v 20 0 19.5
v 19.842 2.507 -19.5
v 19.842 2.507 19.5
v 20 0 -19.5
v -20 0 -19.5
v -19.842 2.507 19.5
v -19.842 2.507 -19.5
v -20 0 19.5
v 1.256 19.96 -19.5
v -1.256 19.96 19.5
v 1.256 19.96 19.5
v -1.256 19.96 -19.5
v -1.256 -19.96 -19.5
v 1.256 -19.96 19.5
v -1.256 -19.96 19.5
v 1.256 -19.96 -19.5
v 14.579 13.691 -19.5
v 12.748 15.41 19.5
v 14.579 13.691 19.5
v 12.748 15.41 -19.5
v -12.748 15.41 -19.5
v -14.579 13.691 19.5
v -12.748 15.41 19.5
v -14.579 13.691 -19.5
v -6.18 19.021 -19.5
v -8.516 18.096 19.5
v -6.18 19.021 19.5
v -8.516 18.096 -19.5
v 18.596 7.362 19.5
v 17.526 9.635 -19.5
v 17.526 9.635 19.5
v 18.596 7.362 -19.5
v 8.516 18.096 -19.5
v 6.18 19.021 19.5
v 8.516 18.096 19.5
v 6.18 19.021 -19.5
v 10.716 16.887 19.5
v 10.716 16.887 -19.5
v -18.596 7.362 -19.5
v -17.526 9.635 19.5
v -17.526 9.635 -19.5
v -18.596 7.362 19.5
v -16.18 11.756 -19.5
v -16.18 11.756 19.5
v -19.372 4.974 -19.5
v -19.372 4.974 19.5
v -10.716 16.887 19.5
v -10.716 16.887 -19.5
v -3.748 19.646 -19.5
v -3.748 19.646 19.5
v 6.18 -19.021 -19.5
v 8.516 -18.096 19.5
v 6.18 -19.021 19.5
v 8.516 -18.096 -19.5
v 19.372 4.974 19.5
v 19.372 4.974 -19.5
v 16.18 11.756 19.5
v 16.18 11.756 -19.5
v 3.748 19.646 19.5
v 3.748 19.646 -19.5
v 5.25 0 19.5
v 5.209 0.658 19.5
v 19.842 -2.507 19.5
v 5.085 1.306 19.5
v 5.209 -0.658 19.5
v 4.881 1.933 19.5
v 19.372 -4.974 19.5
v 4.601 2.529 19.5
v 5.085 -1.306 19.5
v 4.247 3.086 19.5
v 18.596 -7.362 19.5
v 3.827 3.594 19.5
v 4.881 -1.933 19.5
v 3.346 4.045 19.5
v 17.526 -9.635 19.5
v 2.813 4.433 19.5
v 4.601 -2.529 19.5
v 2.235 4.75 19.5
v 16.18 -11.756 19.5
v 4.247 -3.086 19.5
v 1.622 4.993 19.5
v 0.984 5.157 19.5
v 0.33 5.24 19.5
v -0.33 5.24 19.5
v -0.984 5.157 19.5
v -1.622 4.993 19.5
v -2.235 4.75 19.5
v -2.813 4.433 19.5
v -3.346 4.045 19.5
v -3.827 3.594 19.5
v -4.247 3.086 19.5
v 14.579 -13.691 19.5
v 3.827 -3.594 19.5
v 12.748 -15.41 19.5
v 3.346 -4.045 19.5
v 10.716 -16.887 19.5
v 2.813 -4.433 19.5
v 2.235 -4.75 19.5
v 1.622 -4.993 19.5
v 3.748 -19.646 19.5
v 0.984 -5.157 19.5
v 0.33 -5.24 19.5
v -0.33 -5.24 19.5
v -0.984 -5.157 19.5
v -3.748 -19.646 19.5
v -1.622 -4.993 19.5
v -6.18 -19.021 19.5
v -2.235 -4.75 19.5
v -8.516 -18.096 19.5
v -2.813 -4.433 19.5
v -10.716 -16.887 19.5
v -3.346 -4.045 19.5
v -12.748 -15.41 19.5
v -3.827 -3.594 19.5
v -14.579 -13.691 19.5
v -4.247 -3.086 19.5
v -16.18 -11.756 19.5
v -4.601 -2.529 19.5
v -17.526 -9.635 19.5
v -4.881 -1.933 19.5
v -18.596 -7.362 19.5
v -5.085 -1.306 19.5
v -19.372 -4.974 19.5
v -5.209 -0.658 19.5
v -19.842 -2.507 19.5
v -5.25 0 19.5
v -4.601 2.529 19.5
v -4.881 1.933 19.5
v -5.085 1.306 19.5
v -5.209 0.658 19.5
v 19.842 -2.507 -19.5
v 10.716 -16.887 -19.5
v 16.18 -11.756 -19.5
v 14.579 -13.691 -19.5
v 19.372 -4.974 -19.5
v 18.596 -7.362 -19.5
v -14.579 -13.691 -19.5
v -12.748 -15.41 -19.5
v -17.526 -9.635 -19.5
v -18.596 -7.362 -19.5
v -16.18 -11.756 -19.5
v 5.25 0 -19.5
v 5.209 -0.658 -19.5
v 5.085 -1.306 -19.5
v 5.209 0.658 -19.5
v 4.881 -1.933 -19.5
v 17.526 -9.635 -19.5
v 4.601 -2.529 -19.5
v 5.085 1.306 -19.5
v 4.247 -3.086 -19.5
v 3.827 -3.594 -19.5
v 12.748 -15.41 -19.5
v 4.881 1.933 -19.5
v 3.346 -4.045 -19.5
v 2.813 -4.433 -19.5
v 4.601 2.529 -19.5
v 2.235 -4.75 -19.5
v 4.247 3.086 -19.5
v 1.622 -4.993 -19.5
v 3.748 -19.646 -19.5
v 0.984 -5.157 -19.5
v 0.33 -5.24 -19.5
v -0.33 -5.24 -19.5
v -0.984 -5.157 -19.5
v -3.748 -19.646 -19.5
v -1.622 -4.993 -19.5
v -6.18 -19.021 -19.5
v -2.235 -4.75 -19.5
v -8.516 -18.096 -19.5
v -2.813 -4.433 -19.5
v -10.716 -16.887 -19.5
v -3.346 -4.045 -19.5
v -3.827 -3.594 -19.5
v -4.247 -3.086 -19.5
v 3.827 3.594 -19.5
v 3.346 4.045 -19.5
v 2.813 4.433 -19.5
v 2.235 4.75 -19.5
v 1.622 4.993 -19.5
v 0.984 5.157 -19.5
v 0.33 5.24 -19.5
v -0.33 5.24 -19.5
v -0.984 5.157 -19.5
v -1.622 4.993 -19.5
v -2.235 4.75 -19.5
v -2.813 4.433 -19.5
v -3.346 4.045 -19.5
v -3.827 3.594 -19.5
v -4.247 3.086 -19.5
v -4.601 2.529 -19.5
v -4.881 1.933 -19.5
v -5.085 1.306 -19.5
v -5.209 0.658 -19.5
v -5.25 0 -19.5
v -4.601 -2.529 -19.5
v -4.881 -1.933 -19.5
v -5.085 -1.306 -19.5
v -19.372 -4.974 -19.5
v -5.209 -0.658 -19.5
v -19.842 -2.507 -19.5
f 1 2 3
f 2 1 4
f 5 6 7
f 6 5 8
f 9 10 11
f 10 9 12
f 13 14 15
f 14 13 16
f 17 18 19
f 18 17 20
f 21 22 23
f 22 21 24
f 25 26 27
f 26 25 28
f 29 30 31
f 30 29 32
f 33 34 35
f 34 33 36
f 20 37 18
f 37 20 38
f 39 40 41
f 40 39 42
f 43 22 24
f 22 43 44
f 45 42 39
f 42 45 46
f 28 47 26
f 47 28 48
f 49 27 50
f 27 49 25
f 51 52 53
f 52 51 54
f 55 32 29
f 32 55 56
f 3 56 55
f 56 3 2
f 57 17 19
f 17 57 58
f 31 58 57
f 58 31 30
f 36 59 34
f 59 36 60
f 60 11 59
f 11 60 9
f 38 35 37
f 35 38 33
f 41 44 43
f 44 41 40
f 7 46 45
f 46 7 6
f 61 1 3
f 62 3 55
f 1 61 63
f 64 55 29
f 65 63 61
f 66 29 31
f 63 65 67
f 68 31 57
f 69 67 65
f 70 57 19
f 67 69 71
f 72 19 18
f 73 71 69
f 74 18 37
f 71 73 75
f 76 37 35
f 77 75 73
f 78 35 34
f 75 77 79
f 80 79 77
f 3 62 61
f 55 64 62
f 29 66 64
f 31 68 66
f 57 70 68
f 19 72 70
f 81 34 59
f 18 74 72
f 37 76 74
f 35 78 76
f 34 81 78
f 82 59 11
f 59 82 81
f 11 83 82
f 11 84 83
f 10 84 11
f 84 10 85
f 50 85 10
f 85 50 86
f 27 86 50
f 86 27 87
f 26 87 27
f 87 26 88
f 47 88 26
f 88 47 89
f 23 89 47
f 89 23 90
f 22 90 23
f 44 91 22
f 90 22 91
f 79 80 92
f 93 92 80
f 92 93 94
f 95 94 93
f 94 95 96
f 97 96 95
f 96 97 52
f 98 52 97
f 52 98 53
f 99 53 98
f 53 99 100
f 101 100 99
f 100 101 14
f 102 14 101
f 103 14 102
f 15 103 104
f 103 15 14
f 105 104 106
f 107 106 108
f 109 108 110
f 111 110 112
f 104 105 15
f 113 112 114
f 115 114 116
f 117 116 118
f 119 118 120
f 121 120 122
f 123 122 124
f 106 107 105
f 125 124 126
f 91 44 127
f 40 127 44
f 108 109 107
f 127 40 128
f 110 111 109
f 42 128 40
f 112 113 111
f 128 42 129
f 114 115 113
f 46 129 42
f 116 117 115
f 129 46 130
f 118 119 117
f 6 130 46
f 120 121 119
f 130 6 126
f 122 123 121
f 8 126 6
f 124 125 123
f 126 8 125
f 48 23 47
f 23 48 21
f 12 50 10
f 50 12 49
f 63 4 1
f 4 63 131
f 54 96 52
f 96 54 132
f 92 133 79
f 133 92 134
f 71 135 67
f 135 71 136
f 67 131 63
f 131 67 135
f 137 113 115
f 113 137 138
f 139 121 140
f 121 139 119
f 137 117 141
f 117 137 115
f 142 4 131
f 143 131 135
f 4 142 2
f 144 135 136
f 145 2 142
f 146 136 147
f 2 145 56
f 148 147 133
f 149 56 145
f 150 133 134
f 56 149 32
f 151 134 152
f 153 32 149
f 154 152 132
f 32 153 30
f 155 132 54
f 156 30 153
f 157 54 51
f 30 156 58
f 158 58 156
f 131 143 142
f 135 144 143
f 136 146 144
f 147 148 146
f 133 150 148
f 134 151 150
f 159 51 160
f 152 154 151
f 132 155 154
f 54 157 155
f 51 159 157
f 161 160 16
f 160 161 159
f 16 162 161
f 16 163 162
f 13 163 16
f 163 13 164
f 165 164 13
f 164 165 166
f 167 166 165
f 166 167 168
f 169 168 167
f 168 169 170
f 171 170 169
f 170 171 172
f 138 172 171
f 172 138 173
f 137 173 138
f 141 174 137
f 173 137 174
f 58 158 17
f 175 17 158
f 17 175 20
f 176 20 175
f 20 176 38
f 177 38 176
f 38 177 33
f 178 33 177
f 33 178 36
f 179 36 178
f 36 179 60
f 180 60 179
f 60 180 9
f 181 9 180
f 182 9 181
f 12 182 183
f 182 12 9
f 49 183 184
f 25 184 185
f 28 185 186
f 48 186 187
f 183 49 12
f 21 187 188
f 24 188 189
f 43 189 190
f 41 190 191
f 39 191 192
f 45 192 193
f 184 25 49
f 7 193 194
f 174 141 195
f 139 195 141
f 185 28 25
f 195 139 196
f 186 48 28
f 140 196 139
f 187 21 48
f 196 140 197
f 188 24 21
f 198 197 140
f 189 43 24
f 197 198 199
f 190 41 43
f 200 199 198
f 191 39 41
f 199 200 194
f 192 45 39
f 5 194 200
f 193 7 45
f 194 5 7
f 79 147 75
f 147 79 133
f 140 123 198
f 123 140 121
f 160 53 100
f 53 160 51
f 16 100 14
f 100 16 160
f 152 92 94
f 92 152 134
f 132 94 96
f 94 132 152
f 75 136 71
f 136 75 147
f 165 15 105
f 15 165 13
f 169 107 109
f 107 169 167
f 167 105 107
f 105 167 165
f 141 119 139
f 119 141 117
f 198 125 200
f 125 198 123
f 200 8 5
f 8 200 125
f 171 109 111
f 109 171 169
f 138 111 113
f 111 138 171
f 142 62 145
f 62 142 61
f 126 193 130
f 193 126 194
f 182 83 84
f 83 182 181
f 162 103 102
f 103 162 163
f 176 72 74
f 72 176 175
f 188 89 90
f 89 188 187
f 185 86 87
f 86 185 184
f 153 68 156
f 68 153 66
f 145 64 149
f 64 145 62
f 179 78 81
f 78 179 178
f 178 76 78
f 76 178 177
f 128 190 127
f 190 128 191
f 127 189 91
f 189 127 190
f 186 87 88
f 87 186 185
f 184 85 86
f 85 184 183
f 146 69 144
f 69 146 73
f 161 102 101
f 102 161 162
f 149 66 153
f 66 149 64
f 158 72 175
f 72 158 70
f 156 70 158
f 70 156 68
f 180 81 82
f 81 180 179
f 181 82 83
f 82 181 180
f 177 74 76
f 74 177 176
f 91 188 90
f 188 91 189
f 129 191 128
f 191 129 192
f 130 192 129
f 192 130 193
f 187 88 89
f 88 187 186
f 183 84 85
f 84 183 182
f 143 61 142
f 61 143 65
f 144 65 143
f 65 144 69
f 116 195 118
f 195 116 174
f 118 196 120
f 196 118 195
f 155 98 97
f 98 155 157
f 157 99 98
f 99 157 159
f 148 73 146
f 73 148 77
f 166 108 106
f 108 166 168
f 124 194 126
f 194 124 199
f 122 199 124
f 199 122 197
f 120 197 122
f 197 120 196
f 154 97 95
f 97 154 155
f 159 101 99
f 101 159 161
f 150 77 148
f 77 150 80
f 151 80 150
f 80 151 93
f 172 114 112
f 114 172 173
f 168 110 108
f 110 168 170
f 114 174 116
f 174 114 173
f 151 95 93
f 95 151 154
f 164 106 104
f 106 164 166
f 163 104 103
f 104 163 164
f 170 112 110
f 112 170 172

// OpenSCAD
$fn = 50;


difference() {
	union() {
		translate(v = [0, 0, -19.5000000000]) {
			cylinder(h = 39, r = 20.0000000000);
		}
	}
	union() {
		translate(v = [0, 0, -100.0000000000]) {
			cylinder(h = 200, r = 5.2500000000);
		}
	}
}
